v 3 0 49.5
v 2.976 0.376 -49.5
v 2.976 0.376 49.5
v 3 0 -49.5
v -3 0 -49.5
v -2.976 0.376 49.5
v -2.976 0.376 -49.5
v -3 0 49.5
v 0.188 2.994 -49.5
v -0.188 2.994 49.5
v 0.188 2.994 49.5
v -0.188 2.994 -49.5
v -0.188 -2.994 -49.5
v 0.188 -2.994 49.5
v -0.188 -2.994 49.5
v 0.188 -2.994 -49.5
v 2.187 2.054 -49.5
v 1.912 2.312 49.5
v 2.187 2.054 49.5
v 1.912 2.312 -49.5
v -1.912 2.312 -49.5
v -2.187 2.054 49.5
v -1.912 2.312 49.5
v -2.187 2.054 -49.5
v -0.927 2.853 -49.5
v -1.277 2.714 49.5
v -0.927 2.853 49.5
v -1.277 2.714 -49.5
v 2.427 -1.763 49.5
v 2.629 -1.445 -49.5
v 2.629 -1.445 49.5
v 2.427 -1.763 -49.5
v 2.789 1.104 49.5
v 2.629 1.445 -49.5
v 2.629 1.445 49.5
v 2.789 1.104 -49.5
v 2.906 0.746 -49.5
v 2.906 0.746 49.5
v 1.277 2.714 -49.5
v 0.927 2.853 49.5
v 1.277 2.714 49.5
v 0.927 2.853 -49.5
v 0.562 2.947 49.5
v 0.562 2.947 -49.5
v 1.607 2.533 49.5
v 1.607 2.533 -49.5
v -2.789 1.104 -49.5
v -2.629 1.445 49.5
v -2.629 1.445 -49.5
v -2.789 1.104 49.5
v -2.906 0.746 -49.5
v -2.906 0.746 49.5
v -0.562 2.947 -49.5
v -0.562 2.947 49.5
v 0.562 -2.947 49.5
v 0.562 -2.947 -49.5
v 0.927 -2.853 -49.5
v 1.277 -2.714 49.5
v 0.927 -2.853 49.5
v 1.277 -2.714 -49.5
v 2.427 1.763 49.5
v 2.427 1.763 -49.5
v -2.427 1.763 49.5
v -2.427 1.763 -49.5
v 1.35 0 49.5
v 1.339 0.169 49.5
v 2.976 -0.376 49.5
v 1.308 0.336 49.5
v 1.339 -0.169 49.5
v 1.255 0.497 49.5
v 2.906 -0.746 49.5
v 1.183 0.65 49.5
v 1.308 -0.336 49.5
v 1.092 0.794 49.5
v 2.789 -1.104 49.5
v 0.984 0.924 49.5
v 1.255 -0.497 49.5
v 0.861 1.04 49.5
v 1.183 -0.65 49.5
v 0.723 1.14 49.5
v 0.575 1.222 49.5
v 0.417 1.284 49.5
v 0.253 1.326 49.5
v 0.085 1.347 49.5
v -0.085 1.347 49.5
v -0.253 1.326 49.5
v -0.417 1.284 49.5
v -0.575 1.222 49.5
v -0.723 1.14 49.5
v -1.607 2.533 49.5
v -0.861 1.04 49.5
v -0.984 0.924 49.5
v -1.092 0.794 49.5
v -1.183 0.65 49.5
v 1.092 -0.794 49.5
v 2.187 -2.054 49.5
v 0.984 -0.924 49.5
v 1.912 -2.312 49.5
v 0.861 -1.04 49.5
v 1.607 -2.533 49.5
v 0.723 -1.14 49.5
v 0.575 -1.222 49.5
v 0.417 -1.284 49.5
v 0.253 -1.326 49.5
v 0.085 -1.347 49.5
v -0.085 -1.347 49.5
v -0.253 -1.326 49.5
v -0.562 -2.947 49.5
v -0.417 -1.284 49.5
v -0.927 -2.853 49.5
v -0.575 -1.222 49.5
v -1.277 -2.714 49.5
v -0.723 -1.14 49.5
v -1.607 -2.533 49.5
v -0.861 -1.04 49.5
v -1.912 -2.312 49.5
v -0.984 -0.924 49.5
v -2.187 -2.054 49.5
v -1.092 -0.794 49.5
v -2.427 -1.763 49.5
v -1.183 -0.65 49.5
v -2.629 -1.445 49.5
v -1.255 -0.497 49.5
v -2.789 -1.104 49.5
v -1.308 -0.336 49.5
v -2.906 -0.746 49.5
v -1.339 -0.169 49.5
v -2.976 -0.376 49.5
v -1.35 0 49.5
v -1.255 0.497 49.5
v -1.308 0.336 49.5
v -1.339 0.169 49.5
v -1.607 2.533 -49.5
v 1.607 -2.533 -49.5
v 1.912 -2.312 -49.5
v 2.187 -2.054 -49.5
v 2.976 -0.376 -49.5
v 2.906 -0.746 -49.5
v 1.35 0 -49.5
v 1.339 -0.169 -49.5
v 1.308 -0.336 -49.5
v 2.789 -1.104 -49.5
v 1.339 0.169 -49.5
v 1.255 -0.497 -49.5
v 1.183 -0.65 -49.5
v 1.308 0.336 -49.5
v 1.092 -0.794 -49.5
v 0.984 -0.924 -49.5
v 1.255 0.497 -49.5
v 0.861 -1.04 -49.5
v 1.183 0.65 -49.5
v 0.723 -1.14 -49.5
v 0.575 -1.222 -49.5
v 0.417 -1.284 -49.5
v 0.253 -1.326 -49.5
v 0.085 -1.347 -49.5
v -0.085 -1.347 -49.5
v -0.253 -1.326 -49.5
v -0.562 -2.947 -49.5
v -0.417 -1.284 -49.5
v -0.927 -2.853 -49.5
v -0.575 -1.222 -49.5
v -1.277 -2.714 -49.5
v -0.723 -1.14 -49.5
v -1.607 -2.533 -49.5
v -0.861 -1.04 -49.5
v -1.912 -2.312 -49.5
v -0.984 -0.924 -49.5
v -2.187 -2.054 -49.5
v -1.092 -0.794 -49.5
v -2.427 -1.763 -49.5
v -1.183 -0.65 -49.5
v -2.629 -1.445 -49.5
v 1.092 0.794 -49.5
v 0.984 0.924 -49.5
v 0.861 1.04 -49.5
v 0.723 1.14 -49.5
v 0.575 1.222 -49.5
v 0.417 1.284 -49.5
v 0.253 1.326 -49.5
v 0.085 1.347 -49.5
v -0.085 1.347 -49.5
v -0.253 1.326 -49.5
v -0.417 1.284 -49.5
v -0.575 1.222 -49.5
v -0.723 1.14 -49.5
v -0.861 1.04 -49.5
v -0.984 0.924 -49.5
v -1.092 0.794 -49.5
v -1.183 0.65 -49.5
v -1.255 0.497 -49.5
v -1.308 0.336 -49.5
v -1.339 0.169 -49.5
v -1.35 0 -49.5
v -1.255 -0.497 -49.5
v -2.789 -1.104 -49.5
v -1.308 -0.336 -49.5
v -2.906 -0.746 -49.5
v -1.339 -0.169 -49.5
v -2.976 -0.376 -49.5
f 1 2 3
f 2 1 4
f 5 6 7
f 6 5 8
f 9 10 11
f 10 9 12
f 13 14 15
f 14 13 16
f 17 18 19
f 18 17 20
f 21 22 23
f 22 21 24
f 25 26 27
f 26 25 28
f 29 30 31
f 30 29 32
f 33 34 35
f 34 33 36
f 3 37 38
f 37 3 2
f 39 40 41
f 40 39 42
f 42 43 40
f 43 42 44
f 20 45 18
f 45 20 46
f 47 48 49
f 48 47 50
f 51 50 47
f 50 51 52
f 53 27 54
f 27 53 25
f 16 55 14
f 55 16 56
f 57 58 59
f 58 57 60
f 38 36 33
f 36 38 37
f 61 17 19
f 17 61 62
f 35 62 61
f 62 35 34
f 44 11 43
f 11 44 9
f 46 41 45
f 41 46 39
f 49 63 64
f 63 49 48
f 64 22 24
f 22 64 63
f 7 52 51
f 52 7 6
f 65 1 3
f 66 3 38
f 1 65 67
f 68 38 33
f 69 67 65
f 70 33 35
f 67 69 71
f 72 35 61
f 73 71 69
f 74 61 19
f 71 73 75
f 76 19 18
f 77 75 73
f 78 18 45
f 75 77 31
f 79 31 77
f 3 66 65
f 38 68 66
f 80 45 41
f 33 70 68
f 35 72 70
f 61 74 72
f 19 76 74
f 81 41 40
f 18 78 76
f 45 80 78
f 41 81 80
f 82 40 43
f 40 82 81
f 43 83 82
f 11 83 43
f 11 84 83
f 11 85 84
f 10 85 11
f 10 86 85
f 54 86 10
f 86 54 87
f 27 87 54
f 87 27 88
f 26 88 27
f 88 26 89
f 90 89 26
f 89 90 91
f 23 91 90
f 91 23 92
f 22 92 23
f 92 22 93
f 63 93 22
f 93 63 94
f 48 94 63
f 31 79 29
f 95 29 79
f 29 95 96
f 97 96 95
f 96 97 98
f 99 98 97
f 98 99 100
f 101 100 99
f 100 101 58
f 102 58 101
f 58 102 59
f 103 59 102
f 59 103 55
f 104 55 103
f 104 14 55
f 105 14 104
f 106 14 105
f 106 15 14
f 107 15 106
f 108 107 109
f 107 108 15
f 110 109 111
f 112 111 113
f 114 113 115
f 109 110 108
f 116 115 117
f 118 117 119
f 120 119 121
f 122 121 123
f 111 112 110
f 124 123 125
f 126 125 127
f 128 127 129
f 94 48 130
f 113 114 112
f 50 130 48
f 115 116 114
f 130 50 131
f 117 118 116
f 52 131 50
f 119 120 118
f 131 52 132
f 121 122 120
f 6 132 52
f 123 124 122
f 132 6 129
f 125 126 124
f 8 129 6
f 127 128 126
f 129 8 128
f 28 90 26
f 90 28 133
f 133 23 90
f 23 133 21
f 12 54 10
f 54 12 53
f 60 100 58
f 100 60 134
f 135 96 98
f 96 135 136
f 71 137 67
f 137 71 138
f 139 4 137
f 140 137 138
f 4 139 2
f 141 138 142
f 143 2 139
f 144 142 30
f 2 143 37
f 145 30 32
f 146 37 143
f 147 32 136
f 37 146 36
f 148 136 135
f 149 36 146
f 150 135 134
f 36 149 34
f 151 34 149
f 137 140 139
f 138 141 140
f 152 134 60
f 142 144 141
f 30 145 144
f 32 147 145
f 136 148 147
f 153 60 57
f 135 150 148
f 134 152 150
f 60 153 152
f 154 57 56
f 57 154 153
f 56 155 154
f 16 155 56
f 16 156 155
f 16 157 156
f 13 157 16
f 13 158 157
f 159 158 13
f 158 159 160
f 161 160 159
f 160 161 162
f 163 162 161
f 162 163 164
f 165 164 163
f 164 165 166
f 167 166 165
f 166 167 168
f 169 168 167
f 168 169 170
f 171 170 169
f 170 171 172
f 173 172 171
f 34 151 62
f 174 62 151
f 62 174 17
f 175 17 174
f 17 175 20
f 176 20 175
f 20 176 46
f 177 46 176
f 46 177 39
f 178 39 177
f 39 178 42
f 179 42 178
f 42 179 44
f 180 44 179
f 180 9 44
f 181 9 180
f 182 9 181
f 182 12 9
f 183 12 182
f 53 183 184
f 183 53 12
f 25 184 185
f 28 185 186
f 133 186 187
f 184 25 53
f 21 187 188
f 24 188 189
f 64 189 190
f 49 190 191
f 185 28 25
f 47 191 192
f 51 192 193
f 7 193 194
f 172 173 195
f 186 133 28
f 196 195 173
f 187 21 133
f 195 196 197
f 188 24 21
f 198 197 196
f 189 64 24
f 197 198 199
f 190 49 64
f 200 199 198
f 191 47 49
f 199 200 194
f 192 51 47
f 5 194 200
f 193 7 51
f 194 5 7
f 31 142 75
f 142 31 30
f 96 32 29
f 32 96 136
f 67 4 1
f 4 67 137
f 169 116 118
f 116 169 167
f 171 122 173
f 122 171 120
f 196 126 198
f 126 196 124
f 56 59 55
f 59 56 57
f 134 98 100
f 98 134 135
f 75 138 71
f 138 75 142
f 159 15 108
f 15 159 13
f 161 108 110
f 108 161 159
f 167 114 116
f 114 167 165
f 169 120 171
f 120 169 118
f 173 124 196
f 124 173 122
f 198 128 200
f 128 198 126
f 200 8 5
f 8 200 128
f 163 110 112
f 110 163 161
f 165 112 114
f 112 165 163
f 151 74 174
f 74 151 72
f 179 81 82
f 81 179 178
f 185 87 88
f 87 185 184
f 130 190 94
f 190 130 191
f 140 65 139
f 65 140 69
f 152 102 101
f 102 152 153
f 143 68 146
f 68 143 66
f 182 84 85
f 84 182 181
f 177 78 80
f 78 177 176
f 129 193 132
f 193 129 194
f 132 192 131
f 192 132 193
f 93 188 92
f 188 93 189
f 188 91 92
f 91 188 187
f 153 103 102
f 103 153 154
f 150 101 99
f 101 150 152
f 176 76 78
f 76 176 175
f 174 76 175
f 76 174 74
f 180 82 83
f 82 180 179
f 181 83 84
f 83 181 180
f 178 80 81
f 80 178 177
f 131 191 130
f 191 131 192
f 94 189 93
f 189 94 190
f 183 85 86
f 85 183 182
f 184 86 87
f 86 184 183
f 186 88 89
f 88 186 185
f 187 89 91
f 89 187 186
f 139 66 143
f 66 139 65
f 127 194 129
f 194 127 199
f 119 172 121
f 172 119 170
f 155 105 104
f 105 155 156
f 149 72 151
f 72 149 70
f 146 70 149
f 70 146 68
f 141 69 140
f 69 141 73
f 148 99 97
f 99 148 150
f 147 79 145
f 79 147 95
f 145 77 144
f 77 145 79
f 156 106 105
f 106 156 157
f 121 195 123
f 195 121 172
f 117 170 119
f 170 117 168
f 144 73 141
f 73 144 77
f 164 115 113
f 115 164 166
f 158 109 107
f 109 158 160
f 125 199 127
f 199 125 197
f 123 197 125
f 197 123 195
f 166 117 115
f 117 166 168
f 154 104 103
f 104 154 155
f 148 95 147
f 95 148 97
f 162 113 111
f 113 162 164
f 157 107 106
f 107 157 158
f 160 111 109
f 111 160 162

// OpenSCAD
$fn = 50;


difference() {
	union() {
		translate(v = [0, 0, -49.5000000000]) {
			cylinder(h = 99, r = 3.0000000000);
		}
	}
	union() {
		translate(v = [0, 0, -100.0000000000]) {
			cylinder(h = 200, r = 1.3500000000);
		}
	}
}
